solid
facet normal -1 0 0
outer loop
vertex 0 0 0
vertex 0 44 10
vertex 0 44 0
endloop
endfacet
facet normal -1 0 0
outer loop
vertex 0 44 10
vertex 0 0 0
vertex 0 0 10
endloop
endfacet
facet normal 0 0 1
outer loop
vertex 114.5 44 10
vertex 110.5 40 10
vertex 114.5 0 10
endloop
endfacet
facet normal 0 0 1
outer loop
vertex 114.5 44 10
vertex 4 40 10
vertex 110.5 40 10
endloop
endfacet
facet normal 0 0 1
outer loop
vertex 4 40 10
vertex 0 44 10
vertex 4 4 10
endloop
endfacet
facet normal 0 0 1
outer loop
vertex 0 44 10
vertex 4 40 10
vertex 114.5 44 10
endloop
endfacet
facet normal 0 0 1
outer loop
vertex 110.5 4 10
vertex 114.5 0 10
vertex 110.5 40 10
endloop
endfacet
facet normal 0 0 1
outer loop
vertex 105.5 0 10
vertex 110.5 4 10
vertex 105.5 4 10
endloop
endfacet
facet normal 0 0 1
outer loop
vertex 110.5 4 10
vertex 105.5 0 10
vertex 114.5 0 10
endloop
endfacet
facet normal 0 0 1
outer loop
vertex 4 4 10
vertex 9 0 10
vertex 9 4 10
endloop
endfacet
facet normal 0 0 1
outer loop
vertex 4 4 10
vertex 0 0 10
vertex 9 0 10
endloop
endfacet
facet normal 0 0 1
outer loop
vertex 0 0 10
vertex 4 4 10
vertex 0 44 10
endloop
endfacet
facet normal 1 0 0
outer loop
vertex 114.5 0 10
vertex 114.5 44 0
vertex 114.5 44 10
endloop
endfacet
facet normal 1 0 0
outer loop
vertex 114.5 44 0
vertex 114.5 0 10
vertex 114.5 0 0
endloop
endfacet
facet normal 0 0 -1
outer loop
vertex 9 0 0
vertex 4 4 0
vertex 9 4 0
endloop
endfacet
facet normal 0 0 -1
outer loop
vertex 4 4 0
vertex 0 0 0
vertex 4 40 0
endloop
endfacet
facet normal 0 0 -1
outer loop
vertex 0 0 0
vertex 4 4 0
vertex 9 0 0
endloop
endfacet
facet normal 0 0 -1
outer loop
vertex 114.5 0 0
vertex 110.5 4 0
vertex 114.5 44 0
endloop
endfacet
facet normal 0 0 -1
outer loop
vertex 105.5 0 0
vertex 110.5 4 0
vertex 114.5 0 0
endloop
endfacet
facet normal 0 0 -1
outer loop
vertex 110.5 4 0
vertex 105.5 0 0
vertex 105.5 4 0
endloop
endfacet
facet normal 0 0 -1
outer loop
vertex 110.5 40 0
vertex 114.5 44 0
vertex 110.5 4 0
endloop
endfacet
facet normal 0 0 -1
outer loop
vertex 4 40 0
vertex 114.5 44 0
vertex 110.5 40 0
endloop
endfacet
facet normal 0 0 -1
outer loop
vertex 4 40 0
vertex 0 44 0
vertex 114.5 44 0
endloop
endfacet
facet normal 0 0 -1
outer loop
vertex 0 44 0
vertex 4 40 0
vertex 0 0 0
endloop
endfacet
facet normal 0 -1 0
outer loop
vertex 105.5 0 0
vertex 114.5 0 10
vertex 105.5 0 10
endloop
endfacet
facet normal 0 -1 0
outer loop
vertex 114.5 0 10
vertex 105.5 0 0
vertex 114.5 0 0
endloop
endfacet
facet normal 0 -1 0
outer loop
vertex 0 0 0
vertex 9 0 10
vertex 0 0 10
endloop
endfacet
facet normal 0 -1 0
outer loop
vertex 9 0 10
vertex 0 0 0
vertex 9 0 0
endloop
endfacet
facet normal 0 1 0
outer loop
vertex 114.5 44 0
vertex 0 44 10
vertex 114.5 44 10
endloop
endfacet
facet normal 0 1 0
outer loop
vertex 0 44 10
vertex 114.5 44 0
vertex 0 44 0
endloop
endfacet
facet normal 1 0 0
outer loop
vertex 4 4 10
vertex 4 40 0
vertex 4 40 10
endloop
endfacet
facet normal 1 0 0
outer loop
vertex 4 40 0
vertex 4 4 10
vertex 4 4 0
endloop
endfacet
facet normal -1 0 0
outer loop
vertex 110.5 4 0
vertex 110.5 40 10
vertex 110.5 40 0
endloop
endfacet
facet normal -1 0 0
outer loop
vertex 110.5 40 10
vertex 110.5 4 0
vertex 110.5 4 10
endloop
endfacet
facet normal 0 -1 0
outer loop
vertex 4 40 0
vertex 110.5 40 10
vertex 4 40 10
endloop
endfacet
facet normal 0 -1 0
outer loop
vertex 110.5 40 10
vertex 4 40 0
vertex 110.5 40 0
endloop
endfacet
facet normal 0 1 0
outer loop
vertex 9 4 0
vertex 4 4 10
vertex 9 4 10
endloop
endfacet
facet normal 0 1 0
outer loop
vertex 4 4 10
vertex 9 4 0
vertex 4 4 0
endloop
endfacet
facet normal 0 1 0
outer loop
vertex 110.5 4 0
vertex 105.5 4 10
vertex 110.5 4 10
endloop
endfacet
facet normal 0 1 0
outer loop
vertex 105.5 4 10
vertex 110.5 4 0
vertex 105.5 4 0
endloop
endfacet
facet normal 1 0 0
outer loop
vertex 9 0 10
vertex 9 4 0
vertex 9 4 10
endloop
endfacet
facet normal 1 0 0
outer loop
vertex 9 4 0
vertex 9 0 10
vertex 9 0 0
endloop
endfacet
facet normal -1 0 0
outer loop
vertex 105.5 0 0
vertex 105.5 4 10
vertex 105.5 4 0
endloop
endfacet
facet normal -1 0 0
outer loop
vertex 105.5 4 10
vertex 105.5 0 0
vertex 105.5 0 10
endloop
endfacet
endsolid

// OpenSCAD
InnerWidth_x = 106.5;
InnerWidth_y = 36;
Height = 10;
Wall = 4;
Clamp = 5;

OuterWidth_x = InnerWidth_x + 2*Wall;
OuterWidth_y = InnerWidth_y + 2*Wall;

difference()
{
    cube([OuterWidth_x, OuterWidth_y, Height]);
    translate([Wall, Wall, -1])
        cube([InnerWidth_x, InnerWidth_y, Height+2]);
    translate([Wall+Clamp, -1, -1])
        cube([InnerWidth_x-2*Clamp, InnerWidth_y, Height+2]);
}
